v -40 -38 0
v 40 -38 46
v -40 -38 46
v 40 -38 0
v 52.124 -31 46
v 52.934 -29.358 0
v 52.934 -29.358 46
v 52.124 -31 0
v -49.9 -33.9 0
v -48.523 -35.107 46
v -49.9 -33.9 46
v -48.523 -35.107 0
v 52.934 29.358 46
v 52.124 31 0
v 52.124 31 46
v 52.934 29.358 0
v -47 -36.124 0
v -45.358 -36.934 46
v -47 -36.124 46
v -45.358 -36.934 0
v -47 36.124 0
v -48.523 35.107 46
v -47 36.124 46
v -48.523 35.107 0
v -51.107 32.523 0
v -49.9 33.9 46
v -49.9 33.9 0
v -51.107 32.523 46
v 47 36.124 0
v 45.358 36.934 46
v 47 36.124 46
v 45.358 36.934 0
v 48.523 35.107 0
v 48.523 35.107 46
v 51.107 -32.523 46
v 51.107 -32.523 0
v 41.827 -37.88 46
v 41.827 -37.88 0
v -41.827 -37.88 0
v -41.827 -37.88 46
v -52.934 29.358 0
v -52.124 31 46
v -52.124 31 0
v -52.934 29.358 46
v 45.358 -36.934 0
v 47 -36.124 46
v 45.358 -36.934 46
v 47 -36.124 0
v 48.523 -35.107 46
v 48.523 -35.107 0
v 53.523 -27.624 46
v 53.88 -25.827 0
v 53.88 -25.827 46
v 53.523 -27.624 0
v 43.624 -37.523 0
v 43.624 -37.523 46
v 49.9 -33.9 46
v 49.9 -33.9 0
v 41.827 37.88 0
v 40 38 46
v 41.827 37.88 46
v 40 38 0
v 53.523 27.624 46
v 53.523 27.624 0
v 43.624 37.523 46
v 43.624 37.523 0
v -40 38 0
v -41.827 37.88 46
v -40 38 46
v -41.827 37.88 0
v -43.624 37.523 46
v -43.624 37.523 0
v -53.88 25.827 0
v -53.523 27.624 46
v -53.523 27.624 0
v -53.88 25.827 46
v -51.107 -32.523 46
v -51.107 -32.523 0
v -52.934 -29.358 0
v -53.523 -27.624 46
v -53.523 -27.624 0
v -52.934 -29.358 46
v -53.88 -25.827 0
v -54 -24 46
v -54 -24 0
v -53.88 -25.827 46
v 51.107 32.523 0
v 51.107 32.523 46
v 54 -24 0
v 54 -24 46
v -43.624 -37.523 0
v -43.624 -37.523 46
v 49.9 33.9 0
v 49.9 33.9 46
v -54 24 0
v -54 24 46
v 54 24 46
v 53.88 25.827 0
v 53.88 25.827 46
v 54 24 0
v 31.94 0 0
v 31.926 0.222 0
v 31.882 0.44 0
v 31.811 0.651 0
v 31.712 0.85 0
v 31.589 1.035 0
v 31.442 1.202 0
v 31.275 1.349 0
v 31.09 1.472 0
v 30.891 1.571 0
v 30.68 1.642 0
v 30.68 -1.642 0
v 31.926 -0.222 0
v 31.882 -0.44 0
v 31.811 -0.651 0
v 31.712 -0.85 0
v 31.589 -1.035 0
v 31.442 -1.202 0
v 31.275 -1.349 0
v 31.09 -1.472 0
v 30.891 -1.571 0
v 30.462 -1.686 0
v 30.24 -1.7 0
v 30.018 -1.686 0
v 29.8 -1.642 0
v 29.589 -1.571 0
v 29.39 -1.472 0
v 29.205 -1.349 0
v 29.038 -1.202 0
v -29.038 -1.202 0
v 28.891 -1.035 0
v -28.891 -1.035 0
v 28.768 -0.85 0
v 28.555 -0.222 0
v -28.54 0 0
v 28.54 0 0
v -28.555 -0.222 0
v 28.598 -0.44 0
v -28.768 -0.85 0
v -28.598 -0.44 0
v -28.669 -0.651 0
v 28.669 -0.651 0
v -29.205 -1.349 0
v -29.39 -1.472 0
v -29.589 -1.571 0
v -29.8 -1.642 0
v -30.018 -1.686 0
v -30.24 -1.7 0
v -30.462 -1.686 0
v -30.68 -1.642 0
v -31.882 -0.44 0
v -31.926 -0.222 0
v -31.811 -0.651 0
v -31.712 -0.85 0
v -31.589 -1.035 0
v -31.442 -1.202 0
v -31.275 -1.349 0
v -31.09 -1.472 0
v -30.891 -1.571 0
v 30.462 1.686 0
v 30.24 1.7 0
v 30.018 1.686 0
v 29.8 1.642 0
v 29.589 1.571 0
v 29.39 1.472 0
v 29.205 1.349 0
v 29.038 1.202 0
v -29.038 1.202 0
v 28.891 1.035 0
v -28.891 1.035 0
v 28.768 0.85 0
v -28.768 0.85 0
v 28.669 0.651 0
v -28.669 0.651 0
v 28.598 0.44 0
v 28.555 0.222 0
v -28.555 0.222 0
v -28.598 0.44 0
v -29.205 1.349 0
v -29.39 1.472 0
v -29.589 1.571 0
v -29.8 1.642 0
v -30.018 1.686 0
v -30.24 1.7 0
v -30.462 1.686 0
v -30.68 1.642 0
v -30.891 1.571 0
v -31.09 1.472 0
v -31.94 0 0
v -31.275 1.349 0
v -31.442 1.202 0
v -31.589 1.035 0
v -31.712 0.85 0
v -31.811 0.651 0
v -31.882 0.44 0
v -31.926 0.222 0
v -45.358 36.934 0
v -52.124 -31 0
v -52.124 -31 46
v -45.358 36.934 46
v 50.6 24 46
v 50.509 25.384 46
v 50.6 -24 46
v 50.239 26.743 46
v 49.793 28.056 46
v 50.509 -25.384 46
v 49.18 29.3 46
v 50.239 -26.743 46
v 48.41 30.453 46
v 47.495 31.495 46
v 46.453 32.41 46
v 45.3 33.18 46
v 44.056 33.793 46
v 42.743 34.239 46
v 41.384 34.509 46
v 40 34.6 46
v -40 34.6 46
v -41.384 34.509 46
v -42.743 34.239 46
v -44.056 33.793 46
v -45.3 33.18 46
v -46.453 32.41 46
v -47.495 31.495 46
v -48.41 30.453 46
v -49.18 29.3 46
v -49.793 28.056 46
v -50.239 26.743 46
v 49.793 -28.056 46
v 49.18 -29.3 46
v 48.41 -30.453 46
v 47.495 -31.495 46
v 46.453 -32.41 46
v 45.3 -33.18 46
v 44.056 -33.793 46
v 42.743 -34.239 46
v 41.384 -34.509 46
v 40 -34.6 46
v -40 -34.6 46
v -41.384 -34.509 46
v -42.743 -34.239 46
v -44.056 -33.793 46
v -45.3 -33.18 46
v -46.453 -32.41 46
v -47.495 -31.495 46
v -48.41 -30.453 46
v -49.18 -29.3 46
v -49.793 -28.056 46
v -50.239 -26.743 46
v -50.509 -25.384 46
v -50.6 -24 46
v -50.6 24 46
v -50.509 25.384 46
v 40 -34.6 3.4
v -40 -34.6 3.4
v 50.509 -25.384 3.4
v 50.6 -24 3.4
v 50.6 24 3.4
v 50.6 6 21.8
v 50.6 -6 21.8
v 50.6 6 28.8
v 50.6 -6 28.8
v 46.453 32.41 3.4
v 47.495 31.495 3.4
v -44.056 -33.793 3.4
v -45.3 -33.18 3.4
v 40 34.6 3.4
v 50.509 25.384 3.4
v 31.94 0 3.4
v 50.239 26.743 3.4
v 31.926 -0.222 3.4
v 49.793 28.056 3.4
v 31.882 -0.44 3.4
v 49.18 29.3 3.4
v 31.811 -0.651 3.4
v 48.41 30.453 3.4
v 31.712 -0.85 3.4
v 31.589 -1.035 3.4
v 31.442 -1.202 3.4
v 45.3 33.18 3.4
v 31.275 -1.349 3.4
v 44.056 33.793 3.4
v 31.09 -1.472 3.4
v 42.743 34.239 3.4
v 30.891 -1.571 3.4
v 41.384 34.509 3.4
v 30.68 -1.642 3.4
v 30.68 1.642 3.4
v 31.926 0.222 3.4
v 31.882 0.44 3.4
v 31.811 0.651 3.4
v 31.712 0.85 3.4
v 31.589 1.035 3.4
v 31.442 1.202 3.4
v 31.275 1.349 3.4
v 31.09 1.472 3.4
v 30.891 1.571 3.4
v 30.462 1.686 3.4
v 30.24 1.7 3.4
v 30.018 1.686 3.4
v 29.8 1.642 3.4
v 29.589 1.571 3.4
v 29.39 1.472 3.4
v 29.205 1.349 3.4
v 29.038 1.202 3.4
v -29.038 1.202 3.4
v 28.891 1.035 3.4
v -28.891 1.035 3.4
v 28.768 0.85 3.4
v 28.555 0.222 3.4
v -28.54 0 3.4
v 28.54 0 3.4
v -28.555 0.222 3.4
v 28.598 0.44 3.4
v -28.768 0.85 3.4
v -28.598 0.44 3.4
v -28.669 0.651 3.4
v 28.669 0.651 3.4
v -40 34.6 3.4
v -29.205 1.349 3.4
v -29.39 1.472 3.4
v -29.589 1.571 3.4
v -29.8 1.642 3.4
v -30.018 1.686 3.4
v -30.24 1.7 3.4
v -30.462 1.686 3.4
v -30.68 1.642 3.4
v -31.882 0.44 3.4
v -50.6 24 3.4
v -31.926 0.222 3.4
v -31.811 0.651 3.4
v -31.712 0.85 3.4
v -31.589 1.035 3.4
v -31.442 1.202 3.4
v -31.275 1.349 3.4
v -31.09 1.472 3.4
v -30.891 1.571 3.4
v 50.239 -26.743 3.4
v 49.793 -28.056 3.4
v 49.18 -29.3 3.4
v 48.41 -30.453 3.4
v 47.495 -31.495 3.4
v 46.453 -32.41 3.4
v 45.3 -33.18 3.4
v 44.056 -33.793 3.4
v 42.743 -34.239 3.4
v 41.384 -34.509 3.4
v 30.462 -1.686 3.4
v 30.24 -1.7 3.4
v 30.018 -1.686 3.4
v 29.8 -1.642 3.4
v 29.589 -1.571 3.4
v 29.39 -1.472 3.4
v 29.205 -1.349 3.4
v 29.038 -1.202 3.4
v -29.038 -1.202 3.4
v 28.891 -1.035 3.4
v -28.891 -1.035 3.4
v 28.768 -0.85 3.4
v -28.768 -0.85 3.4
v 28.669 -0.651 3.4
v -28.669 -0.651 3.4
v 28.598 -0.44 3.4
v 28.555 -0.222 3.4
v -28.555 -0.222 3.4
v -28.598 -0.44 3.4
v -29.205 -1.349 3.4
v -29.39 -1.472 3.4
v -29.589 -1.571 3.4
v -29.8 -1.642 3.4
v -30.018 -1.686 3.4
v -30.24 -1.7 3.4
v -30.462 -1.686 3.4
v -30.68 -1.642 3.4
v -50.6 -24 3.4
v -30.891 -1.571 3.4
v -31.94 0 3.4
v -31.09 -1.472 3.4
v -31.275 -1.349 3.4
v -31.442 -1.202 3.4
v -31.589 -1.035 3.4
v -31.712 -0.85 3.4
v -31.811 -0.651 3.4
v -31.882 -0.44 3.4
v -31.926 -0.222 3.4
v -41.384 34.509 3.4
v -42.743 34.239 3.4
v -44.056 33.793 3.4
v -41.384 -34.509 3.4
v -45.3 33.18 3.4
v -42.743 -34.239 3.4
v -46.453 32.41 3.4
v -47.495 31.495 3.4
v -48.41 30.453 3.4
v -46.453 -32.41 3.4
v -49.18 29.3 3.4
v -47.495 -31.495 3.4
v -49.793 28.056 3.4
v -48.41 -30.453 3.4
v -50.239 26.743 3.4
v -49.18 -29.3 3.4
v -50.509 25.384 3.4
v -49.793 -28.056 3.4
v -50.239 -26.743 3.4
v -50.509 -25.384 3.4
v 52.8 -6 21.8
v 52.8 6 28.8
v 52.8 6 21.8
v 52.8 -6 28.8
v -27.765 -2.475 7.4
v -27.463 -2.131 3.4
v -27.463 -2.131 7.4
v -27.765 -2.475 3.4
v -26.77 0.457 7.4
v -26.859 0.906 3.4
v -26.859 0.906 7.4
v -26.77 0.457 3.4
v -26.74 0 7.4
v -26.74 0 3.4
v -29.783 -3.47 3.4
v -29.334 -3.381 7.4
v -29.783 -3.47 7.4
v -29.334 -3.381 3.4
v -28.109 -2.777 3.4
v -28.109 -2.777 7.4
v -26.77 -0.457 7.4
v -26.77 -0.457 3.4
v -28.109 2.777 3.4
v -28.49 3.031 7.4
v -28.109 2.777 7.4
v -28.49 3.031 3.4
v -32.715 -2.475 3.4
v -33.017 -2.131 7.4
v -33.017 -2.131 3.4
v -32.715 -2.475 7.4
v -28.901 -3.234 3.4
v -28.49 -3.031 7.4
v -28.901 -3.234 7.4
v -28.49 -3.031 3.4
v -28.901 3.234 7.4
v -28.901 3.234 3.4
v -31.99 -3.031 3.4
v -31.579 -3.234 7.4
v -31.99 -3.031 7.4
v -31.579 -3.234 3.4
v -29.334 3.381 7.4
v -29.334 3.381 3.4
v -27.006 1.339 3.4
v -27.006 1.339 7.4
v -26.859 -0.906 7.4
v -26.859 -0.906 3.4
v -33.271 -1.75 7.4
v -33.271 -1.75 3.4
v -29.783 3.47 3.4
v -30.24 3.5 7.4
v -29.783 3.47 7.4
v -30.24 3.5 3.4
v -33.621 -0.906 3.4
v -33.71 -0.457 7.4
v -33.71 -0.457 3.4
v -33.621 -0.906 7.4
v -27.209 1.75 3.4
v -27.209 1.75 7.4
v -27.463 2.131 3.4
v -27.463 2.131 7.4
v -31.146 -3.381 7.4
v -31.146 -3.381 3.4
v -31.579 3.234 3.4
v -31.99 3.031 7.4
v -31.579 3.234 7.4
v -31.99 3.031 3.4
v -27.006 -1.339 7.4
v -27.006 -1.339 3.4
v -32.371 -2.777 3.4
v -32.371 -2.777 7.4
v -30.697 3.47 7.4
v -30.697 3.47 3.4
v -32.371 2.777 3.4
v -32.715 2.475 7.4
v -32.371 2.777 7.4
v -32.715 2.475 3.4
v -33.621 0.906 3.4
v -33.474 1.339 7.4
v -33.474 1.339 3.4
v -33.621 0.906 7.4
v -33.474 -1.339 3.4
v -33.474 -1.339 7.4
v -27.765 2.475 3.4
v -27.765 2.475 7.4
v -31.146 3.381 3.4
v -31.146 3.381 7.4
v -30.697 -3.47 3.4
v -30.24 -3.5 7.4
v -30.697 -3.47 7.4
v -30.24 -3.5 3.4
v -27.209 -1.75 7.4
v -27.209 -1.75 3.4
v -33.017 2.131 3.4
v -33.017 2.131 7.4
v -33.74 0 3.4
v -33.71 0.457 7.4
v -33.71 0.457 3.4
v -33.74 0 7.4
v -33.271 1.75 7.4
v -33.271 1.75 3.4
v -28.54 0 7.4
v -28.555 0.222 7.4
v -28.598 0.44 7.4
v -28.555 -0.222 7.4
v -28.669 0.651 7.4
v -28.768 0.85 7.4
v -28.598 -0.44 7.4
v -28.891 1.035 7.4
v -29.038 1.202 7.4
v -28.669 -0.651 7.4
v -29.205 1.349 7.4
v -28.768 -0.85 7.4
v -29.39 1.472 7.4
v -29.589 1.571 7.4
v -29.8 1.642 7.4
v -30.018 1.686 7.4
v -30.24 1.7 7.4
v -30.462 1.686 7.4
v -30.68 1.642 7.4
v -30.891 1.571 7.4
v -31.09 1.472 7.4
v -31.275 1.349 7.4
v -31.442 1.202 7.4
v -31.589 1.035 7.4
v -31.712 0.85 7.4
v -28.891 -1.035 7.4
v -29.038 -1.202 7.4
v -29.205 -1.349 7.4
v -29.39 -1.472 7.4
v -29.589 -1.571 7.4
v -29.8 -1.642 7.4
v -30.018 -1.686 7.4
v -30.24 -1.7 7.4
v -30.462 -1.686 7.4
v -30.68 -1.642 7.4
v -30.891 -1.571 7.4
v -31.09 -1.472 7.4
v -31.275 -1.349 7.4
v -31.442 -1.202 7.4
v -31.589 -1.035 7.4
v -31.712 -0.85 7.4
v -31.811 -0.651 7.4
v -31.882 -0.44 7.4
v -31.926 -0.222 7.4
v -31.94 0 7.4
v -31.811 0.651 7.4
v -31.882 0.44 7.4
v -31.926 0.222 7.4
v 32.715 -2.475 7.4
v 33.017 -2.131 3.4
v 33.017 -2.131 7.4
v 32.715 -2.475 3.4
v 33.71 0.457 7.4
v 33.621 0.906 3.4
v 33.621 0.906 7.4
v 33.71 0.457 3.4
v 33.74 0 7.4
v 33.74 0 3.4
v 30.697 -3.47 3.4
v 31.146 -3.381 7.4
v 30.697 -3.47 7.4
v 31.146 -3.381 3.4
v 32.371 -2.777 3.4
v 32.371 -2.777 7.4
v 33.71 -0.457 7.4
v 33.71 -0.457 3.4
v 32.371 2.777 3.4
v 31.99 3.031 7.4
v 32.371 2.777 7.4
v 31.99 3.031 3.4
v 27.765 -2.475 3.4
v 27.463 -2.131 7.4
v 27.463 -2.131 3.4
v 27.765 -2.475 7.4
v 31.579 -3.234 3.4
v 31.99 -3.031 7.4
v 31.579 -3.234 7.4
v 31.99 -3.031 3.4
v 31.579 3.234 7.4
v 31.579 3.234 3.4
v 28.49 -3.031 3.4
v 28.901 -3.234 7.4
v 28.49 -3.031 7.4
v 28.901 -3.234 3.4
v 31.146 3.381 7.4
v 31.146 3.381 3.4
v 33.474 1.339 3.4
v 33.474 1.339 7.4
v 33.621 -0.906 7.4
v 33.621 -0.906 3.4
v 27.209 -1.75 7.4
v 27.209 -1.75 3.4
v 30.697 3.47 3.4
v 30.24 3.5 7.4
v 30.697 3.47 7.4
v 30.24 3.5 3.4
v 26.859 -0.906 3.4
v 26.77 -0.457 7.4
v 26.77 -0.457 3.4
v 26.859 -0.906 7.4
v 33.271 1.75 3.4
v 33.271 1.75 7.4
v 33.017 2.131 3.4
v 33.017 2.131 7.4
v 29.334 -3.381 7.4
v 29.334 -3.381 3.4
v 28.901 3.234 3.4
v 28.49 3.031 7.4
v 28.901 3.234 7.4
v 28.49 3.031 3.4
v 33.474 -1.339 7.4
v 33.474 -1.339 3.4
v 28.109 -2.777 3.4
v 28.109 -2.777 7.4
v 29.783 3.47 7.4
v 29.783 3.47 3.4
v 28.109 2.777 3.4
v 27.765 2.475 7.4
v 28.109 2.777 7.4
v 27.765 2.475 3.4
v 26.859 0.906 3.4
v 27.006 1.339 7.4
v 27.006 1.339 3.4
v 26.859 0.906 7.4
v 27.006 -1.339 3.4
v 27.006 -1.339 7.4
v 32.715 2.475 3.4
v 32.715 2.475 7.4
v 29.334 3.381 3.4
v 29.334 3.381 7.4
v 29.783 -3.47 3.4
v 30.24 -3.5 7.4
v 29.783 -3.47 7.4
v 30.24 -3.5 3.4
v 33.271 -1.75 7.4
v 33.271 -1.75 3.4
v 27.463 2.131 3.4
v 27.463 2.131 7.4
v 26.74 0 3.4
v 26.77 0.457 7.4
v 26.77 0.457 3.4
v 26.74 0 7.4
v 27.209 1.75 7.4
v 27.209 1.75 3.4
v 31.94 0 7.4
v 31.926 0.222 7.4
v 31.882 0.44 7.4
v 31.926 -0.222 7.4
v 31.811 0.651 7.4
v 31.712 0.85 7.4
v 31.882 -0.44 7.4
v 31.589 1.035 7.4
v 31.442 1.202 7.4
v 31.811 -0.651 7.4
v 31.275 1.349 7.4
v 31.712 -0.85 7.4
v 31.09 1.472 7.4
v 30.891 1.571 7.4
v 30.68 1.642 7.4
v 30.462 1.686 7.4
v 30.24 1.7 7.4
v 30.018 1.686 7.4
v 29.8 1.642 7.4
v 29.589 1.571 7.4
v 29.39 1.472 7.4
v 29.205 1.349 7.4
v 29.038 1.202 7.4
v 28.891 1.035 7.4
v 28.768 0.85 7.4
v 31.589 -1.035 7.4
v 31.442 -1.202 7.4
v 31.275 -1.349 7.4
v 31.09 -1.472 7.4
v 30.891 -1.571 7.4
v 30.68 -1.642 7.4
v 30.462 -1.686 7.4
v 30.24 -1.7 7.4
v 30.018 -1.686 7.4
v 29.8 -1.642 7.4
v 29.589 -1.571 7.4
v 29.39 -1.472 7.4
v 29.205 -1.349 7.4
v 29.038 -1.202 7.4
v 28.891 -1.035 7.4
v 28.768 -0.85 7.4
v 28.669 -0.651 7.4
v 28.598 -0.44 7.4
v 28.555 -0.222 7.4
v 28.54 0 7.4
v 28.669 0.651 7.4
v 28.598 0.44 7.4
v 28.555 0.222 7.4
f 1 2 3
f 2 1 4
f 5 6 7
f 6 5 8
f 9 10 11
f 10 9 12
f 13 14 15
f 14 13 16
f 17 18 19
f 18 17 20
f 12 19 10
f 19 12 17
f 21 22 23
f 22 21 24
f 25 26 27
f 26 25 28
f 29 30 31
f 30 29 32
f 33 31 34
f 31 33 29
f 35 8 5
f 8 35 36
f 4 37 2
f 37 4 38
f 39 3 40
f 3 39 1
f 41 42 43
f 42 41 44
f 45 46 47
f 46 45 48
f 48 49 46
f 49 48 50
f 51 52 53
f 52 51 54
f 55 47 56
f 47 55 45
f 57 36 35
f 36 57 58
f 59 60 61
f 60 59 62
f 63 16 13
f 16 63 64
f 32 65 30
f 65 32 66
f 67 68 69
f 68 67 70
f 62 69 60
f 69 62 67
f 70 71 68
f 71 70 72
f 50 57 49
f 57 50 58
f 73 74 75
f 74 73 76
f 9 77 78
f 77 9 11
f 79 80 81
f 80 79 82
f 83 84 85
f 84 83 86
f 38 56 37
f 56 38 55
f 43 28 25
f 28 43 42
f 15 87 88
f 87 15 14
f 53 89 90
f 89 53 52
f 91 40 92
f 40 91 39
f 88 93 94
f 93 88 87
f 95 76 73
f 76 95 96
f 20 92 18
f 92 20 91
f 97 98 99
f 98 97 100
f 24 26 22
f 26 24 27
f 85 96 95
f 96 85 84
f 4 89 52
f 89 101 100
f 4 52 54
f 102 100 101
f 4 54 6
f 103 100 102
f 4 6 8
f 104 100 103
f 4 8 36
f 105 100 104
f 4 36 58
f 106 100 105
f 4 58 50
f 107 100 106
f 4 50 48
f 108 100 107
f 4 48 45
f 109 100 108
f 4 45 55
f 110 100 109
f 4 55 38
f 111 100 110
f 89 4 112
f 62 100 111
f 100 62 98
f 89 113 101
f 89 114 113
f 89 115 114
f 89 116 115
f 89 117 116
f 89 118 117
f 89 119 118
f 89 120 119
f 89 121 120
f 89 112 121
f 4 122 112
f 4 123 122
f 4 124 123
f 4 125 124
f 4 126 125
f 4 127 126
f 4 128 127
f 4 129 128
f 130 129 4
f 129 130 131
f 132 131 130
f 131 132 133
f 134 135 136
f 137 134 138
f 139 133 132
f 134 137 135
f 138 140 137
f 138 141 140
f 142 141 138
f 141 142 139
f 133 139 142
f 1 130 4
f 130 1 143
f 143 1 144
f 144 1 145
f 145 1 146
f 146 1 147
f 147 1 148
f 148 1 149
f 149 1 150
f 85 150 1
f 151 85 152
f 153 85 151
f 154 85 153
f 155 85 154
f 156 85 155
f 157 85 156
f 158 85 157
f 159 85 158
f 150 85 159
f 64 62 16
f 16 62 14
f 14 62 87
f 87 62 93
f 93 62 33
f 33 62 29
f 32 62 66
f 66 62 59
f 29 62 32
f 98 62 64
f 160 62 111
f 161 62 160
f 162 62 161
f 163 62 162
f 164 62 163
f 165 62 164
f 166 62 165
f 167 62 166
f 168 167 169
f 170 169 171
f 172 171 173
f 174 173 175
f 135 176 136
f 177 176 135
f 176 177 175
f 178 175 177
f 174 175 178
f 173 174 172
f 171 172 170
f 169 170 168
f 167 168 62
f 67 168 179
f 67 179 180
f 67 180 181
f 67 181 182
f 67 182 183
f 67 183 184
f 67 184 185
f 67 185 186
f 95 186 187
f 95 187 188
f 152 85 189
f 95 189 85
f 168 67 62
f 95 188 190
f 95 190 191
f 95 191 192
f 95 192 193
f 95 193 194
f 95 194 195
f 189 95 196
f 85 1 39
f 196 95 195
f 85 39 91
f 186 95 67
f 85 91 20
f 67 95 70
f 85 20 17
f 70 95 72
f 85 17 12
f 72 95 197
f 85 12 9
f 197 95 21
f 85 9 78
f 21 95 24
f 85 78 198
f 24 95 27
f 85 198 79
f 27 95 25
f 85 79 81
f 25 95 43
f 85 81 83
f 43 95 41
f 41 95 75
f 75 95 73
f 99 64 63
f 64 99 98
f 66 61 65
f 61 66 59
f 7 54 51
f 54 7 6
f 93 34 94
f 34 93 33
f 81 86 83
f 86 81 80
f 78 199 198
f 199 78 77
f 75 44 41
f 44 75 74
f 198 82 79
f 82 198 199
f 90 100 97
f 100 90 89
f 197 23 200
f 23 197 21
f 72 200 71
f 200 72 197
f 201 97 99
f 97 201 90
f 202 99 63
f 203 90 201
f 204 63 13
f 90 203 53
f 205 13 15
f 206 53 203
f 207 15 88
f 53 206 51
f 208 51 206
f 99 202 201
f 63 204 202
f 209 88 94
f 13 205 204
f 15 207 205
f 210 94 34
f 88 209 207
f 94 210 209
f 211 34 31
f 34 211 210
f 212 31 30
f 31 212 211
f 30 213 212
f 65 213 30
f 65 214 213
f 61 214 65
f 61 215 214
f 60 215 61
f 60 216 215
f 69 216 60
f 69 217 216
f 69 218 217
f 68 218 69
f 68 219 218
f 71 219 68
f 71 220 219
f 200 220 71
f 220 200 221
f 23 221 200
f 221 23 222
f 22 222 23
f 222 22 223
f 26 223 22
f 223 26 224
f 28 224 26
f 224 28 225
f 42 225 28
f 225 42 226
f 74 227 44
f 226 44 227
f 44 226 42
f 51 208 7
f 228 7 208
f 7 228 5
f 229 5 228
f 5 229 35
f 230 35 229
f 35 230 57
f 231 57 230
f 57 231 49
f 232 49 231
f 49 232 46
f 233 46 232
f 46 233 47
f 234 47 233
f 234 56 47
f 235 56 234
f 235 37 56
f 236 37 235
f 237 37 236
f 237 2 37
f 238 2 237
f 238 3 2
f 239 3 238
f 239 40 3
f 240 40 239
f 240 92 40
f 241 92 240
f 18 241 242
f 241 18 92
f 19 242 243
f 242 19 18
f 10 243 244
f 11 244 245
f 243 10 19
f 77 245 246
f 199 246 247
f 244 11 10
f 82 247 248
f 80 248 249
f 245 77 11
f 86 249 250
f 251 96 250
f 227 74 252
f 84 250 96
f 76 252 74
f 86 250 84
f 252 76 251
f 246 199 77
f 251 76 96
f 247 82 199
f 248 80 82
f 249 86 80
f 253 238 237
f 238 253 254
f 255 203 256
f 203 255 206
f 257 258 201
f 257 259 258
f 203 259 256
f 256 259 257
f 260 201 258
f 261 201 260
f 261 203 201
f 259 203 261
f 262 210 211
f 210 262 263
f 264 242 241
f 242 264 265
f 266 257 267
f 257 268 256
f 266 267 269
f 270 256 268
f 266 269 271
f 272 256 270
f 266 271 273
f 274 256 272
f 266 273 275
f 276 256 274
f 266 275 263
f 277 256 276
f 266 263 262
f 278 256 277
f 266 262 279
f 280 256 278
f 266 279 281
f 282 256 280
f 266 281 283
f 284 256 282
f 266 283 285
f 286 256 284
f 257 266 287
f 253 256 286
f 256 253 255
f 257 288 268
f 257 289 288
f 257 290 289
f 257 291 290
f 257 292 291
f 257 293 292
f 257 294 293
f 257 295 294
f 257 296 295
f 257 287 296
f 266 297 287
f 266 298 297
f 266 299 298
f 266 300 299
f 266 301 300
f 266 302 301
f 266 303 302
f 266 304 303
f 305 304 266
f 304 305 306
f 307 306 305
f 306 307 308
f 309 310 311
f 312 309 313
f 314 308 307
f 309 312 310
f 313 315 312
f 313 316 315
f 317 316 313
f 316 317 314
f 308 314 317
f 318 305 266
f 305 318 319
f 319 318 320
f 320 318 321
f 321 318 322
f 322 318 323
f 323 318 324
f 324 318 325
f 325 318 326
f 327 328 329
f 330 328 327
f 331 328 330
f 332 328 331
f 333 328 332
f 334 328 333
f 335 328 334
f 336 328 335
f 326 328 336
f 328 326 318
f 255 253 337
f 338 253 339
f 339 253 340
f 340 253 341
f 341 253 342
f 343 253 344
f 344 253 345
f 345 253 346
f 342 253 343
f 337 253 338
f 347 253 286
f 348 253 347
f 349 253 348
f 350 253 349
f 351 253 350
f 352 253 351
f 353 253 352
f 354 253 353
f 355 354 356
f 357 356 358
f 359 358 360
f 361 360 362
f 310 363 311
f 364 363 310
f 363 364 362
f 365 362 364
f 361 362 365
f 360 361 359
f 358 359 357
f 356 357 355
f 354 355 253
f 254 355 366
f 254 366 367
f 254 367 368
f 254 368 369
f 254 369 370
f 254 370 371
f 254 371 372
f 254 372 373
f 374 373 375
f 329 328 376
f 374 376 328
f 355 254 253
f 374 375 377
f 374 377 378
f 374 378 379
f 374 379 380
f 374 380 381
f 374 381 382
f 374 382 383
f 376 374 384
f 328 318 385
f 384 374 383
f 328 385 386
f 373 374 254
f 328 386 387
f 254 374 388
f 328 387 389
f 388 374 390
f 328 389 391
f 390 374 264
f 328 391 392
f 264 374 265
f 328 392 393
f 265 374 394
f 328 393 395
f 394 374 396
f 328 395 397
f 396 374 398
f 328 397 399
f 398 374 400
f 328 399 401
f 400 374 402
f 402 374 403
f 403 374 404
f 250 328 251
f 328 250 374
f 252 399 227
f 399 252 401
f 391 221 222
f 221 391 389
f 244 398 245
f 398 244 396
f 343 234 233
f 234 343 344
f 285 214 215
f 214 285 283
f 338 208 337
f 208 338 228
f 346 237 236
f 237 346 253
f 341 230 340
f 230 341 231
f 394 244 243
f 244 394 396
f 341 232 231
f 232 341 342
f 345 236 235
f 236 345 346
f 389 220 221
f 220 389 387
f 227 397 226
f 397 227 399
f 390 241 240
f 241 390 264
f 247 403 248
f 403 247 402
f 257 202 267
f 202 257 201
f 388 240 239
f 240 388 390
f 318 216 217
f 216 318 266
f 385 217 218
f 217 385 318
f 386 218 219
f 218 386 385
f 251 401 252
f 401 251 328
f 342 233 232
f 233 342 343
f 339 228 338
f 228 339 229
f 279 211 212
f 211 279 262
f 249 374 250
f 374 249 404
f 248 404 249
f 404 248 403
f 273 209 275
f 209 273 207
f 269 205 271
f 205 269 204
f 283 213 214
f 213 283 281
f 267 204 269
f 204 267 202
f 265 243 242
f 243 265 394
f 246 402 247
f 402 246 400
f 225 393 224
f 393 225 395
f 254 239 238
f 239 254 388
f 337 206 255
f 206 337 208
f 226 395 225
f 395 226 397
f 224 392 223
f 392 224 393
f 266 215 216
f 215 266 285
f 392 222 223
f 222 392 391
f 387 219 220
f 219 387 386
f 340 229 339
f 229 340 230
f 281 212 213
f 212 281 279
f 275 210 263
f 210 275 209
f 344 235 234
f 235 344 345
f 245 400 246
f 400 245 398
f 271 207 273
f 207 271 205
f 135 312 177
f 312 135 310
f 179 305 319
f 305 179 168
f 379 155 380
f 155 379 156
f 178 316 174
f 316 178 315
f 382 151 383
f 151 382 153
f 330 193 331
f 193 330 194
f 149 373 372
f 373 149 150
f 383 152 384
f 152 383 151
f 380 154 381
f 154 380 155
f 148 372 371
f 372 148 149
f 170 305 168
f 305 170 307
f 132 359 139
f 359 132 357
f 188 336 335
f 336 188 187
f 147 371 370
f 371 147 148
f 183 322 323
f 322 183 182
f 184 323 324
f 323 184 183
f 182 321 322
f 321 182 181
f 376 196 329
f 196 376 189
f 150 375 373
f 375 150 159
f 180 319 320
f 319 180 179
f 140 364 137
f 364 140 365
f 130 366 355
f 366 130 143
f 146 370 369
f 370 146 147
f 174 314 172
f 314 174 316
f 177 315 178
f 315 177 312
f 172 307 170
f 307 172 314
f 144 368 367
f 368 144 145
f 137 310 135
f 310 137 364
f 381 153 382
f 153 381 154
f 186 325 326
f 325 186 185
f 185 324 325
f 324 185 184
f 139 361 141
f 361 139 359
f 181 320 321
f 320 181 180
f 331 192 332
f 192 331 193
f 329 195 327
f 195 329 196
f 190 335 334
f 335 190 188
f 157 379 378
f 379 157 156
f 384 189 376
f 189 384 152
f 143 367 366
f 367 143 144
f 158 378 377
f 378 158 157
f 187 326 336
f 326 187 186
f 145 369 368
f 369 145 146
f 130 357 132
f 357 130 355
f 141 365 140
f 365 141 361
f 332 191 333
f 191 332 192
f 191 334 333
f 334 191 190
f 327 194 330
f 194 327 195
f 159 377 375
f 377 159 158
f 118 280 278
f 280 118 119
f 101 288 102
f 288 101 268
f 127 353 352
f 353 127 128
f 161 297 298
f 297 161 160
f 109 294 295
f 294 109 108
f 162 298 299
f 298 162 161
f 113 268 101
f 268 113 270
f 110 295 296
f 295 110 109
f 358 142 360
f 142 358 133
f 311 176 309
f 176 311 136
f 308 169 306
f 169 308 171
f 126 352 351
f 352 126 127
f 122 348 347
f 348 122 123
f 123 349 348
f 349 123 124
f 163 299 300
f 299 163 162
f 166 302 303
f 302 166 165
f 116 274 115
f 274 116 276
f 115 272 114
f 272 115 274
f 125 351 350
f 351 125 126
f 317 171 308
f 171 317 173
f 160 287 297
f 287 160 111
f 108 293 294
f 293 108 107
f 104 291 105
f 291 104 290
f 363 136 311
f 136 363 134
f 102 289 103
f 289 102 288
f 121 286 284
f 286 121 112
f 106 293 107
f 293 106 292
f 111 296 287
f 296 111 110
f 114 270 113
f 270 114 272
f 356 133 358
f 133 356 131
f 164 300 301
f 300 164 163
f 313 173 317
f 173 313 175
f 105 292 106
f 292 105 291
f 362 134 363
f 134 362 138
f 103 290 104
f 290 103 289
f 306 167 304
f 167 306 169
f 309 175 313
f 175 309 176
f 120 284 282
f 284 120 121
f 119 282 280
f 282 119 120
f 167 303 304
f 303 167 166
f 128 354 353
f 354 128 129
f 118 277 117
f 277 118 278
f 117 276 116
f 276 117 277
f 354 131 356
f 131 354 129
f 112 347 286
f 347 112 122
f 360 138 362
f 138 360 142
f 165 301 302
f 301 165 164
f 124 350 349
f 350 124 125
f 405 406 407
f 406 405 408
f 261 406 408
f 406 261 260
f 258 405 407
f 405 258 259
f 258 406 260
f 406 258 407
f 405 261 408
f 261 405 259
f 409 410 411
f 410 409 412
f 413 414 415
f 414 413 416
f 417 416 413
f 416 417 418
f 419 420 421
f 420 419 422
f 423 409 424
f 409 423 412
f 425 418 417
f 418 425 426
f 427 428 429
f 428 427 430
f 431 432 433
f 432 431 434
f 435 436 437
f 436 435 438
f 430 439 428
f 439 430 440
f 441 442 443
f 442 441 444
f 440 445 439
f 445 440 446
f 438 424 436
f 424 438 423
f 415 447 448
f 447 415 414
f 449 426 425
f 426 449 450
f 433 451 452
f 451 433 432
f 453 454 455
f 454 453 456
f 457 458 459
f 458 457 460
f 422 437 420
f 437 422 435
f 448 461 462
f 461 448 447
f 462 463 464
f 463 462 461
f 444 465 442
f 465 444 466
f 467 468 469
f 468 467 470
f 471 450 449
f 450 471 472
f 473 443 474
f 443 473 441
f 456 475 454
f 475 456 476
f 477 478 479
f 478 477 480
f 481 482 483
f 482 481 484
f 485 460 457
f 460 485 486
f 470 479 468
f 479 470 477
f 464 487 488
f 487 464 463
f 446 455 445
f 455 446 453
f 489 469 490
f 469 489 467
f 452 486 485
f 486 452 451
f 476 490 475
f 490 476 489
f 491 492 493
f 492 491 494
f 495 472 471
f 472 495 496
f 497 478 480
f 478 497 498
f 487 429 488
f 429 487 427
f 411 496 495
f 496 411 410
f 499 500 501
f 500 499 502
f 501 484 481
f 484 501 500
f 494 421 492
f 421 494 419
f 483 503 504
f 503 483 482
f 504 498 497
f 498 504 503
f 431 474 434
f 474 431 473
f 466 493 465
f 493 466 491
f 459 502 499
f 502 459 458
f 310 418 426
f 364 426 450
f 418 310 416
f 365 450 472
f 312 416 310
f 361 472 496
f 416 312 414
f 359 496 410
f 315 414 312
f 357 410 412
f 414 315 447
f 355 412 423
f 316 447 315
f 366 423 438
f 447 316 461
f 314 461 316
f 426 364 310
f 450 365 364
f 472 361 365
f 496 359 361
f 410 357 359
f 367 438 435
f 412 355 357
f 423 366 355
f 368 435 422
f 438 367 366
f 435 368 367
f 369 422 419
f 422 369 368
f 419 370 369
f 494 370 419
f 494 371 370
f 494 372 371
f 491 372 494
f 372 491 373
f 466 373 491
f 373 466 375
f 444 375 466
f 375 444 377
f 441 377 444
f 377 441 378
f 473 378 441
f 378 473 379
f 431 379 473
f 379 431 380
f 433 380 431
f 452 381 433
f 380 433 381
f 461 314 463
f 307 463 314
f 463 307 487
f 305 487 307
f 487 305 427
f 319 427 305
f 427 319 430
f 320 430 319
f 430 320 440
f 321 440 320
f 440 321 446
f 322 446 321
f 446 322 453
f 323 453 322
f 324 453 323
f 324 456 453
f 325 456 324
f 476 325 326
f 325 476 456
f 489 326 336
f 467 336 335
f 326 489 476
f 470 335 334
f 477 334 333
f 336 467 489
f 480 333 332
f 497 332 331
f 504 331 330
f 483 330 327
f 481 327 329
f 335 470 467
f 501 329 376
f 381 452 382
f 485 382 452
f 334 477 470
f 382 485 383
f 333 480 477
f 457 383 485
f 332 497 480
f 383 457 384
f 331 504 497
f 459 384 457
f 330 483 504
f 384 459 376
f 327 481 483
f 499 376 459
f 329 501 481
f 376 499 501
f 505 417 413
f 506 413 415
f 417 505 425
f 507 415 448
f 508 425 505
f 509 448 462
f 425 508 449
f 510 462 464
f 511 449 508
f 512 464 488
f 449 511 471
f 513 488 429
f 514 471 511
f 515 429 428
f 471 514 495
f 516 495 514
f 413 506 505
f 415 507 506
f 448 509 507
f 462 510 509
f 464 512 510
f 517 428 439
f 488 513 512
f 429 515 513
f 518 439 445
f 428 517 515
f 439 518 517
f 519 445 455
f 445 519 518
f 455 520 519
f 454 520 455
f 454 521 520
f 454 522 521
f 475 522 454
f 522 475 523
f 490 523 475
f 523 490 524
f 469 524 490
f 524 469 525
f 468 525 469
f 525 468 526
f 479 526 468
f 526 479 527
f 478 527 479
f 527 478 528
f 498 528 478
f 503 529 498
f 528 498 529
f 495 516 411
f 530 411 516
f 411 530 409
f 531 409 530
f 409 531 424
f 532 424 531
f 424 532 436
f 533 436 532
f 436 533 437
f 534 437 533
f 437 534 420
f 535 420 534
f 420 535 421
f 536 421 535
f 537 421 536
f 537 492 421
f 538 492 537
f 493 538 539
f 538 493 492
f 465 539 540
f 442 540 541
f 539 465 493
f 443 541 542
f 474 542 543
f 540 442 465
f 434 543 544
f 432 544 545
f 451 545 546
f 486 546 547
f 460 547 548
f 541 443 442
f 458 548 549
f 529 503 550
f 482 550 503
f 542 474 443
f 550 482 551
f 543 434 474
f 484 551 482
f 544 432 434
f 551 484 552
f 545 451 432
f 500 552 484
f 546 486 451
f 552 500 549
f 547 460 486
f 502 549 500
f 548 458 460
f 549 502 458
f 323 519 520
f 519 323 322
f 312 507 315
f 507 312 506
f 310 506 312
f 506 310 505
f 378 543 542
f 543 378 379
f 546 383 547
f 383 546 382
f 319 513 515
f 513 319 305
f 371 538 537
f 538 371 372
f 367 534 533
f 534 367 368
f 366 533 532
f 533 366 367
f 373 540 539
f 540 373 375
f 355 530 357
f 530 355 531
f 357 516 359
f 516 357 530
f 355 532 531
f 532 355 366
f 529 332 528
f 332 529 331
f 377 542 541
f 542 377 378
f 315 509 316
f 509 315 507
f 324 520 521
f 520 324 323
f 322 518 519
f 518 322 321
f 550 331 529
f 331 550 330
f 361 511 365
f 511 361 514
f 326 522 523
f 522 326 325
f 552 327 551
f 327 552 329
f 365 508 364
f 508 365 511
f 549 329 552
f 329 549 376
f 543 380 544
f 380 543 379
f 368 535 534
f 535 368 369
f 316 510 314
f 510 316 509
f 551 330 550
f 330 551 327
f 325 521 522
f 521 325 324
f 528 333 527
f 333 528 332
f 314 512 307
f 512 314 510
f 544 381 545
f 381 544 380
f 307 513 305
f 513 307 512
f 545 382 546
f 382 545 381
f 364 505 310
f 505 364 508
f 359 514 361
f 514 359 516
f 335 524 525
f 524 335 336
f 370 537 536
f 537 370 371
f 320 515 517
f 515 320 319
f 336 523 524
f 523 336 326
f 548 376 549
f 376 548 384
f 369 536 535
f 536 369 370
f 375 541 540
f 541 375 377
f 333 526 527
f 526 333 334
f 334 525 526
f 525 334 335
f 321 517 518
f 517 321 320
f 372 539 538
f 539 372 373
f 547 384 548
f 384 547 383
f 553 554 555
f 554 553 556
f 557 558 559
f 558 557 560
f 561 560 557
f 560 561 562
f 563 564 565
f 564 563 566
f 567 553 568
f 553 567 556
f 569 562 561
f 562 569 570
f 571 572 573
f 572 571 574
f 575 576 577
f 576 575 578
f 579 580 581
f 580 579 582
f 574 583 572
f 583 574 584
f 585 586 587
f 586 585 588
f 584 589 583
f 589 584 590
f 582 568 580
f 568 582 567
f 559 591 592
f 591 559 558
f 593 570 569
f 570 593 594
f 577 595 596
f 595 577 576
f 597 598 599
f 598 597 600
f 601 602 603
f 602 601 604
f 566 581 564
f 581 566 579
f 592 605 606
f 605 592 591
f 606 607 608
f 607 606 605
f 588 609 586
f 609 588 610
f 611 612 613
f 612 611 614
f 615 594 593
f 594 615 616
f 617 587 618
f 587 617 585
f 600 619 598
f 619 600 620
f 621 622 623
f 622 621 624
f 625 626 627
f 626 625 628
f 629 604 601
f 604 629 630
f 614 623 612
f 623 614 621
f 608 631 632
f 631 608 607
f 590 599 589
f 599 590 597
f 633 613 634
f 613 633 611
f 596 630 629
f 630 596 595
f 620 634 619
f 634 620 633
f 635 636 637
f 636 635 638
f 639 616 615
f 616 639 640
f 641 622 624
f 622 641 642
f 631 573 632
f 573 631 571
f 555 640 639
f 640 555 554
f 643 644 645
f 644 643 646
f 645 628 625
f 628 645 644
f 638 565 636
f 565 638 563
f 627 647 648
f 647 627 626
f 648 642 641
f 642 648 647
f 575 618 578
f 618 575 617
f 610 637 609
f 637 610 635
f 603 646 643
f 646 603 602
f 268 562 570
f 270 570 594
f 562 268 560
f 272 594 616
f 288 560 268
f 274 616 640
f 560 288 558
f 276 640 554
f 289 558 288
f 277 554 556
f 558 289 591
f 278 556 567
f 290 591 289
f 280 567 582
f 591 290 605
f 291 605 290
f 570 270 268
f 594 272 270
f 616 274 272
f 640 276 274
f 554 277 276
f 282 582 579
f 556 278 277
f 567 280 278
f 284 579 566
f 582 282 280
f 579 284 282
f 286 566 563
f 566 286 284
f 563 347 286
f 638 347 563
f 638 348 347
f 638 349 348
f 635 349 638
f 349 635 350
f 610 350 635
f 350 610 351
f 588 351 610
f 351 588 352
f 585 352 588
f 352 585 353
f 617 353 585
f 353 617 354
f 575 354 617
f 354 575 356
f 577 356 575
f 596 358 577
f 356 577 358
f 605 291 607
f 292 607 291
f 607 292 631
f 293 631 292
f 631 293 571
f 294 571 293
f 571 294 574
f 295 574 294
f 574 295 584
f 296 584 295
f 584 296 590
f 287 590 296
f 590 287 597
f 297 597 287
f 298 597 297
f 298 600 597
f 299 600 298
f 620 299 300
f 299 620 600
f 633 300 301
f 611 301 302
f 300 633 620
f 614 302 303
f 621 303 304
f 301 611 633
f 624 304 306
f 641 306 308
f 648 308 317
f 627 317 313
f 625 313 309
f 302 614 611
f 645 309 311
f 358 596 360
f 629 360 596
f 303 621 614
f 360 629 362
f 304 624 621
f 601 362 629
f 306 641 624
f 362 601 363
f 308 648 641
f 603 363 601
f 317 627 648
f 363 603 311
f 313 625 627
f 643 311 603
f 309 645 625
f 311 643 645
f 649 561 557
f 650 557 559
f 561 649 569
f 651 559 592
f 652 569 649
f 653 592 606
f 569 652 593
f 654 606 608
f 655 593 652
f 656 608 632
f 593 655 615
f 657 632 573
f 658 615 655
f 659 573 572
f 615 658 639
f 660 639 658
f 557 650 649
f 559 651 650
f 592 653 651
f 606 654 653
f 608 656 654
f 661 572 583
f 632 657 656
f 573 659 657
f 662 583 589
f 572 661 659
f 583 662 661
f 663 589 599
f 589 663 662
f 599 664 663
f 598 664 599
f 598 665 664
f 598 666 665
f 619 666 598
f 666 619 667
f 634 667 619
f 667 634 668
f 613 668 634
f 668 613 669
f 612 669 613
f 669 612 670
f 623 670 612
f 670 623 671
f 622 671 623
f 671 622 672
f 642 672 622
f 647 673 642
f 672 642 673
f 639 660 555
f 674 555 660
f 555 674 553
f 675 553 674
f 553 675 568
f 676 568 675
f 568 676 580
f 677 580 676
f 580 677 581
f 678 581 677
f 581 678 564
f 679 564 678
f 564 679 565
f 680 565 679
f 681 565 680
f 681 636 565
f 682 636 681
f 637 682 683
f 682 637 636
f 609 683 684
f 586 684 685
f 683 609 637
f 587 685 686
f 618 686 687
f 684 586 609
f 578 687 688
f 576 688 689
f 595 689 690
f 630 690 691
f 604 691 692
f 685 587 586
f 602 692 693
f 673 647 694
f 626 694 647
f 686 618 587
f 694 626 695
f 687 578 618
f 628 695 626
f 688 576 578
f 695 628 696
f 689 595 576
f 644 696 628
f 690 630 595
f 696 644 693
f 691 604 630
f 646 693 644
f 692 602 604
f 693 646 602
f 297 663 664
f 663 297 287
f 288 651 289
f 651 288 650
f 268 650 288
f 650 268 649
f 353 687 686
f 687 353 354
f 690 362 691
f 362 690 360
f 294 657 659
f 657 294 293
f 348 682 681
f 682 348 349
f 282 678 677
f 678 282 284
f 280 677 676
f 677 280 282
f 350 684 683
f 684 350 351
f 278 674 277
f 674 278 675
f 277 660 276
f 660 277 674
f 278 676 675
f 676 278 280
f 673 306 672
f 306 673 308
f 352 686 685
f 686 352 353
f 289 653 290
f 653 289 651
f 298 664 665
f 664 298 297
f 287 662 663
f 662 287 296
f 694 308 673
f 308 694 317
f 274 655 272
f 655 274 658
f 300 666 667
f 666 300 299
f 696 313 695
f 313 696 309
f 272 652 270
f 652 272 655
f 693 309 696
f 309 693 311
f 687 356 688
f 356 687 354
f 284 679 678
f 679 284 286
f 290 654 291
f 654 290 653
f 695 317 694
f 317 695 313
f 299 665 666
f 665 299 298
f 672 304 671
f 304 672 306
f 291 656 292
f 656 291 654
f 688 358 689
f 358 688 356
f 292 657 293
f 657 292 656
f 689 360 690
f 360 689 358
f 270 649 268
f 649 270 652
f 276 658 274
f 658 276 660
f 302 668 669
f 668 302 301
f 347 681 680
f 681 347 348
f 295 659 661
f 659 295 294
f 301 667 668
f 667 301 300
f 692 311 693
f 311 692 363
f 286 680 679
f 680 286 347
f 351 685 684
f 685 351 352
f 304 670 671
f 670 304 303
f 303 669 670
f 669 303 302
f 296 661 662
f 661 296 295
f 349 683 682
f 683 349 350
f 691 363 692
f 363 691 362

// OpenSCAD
// ============================================================================
// Get Me An Alt — Parametric OpenSCAD Module
// Part: PRT-06 — Airfoil Loop Pressurized Plenum Neck Collar (plenum-neck-collar)
// Function: Supports the airfoil loop and bifurcates pressurized airflow.
// Target Bounding Box (mm): [108, 76, 46]
// Print Material: PETG | Min Wall: >= 1.6mm | Tolerance: 0.2mm
// ============================================================================
$fn = 48;
part_width = 108;
part_depth = 76;
part_height = 46;
wall_thickness = 3.4;
floor_thickness = 3.4;
corner_radius = 14;
tolerance = 0.2;
m3_clearance_d = 3.4; // M3 screw clearance hole (3.0mm + 2*0.2mm)

module rounded_rect_prism(w, d, h, r) {
  cr = max(0.5, min(r, min(w, d) / 2 - 0.1));
  linear_extrude(height = h)
    offset(r = cr)
      offset(r = -cr)
        square([w, d], center = true);
}

module part_plenum_neck_collar() {
  union() {
    difference() {
      rounded_rect_prism(part_width, part_depth, part_height, corner_radius);
      translate([0, 0, floor_thickness])
        rounded_rect_prism(
          part_width - 2 * wall_thickness,
          part_depth - 2 * wall_thickness,
          part_height,
          max(1.0, corner_radius - wall_thickness)
        );
    translate([-part_width * 0.28, 0, -1]) cylinder(h = floor_thickness + 2, d = m3_clearance_d);
    translate([part_width * 0.28, 0, -1]) cylinder(h = floor_thickness + 2, d = m3_clearance_d);
      // Cable / USB-C pass-through slot on side wall
      translate([part_width / 2 - wall_thickness - 1, 0, part_height * 0.55])
        cube([wall_thickness + 3, 12, 7], center = true);
    }
    // Internal M3 PCB standoff bosses
    for (sx = [-part_width * 0.28, part_width * 0.28]) {
      translate([sx, 0, floor_thickness])
        difference() {
          cylinder(h = 4.0, d = 7.0);
          translate([0, 0, -0.5]) cylinder(h = 5.0, d = m3_clearance_d);
        }
    }
  }
}

part_plenum_neck_collar();
